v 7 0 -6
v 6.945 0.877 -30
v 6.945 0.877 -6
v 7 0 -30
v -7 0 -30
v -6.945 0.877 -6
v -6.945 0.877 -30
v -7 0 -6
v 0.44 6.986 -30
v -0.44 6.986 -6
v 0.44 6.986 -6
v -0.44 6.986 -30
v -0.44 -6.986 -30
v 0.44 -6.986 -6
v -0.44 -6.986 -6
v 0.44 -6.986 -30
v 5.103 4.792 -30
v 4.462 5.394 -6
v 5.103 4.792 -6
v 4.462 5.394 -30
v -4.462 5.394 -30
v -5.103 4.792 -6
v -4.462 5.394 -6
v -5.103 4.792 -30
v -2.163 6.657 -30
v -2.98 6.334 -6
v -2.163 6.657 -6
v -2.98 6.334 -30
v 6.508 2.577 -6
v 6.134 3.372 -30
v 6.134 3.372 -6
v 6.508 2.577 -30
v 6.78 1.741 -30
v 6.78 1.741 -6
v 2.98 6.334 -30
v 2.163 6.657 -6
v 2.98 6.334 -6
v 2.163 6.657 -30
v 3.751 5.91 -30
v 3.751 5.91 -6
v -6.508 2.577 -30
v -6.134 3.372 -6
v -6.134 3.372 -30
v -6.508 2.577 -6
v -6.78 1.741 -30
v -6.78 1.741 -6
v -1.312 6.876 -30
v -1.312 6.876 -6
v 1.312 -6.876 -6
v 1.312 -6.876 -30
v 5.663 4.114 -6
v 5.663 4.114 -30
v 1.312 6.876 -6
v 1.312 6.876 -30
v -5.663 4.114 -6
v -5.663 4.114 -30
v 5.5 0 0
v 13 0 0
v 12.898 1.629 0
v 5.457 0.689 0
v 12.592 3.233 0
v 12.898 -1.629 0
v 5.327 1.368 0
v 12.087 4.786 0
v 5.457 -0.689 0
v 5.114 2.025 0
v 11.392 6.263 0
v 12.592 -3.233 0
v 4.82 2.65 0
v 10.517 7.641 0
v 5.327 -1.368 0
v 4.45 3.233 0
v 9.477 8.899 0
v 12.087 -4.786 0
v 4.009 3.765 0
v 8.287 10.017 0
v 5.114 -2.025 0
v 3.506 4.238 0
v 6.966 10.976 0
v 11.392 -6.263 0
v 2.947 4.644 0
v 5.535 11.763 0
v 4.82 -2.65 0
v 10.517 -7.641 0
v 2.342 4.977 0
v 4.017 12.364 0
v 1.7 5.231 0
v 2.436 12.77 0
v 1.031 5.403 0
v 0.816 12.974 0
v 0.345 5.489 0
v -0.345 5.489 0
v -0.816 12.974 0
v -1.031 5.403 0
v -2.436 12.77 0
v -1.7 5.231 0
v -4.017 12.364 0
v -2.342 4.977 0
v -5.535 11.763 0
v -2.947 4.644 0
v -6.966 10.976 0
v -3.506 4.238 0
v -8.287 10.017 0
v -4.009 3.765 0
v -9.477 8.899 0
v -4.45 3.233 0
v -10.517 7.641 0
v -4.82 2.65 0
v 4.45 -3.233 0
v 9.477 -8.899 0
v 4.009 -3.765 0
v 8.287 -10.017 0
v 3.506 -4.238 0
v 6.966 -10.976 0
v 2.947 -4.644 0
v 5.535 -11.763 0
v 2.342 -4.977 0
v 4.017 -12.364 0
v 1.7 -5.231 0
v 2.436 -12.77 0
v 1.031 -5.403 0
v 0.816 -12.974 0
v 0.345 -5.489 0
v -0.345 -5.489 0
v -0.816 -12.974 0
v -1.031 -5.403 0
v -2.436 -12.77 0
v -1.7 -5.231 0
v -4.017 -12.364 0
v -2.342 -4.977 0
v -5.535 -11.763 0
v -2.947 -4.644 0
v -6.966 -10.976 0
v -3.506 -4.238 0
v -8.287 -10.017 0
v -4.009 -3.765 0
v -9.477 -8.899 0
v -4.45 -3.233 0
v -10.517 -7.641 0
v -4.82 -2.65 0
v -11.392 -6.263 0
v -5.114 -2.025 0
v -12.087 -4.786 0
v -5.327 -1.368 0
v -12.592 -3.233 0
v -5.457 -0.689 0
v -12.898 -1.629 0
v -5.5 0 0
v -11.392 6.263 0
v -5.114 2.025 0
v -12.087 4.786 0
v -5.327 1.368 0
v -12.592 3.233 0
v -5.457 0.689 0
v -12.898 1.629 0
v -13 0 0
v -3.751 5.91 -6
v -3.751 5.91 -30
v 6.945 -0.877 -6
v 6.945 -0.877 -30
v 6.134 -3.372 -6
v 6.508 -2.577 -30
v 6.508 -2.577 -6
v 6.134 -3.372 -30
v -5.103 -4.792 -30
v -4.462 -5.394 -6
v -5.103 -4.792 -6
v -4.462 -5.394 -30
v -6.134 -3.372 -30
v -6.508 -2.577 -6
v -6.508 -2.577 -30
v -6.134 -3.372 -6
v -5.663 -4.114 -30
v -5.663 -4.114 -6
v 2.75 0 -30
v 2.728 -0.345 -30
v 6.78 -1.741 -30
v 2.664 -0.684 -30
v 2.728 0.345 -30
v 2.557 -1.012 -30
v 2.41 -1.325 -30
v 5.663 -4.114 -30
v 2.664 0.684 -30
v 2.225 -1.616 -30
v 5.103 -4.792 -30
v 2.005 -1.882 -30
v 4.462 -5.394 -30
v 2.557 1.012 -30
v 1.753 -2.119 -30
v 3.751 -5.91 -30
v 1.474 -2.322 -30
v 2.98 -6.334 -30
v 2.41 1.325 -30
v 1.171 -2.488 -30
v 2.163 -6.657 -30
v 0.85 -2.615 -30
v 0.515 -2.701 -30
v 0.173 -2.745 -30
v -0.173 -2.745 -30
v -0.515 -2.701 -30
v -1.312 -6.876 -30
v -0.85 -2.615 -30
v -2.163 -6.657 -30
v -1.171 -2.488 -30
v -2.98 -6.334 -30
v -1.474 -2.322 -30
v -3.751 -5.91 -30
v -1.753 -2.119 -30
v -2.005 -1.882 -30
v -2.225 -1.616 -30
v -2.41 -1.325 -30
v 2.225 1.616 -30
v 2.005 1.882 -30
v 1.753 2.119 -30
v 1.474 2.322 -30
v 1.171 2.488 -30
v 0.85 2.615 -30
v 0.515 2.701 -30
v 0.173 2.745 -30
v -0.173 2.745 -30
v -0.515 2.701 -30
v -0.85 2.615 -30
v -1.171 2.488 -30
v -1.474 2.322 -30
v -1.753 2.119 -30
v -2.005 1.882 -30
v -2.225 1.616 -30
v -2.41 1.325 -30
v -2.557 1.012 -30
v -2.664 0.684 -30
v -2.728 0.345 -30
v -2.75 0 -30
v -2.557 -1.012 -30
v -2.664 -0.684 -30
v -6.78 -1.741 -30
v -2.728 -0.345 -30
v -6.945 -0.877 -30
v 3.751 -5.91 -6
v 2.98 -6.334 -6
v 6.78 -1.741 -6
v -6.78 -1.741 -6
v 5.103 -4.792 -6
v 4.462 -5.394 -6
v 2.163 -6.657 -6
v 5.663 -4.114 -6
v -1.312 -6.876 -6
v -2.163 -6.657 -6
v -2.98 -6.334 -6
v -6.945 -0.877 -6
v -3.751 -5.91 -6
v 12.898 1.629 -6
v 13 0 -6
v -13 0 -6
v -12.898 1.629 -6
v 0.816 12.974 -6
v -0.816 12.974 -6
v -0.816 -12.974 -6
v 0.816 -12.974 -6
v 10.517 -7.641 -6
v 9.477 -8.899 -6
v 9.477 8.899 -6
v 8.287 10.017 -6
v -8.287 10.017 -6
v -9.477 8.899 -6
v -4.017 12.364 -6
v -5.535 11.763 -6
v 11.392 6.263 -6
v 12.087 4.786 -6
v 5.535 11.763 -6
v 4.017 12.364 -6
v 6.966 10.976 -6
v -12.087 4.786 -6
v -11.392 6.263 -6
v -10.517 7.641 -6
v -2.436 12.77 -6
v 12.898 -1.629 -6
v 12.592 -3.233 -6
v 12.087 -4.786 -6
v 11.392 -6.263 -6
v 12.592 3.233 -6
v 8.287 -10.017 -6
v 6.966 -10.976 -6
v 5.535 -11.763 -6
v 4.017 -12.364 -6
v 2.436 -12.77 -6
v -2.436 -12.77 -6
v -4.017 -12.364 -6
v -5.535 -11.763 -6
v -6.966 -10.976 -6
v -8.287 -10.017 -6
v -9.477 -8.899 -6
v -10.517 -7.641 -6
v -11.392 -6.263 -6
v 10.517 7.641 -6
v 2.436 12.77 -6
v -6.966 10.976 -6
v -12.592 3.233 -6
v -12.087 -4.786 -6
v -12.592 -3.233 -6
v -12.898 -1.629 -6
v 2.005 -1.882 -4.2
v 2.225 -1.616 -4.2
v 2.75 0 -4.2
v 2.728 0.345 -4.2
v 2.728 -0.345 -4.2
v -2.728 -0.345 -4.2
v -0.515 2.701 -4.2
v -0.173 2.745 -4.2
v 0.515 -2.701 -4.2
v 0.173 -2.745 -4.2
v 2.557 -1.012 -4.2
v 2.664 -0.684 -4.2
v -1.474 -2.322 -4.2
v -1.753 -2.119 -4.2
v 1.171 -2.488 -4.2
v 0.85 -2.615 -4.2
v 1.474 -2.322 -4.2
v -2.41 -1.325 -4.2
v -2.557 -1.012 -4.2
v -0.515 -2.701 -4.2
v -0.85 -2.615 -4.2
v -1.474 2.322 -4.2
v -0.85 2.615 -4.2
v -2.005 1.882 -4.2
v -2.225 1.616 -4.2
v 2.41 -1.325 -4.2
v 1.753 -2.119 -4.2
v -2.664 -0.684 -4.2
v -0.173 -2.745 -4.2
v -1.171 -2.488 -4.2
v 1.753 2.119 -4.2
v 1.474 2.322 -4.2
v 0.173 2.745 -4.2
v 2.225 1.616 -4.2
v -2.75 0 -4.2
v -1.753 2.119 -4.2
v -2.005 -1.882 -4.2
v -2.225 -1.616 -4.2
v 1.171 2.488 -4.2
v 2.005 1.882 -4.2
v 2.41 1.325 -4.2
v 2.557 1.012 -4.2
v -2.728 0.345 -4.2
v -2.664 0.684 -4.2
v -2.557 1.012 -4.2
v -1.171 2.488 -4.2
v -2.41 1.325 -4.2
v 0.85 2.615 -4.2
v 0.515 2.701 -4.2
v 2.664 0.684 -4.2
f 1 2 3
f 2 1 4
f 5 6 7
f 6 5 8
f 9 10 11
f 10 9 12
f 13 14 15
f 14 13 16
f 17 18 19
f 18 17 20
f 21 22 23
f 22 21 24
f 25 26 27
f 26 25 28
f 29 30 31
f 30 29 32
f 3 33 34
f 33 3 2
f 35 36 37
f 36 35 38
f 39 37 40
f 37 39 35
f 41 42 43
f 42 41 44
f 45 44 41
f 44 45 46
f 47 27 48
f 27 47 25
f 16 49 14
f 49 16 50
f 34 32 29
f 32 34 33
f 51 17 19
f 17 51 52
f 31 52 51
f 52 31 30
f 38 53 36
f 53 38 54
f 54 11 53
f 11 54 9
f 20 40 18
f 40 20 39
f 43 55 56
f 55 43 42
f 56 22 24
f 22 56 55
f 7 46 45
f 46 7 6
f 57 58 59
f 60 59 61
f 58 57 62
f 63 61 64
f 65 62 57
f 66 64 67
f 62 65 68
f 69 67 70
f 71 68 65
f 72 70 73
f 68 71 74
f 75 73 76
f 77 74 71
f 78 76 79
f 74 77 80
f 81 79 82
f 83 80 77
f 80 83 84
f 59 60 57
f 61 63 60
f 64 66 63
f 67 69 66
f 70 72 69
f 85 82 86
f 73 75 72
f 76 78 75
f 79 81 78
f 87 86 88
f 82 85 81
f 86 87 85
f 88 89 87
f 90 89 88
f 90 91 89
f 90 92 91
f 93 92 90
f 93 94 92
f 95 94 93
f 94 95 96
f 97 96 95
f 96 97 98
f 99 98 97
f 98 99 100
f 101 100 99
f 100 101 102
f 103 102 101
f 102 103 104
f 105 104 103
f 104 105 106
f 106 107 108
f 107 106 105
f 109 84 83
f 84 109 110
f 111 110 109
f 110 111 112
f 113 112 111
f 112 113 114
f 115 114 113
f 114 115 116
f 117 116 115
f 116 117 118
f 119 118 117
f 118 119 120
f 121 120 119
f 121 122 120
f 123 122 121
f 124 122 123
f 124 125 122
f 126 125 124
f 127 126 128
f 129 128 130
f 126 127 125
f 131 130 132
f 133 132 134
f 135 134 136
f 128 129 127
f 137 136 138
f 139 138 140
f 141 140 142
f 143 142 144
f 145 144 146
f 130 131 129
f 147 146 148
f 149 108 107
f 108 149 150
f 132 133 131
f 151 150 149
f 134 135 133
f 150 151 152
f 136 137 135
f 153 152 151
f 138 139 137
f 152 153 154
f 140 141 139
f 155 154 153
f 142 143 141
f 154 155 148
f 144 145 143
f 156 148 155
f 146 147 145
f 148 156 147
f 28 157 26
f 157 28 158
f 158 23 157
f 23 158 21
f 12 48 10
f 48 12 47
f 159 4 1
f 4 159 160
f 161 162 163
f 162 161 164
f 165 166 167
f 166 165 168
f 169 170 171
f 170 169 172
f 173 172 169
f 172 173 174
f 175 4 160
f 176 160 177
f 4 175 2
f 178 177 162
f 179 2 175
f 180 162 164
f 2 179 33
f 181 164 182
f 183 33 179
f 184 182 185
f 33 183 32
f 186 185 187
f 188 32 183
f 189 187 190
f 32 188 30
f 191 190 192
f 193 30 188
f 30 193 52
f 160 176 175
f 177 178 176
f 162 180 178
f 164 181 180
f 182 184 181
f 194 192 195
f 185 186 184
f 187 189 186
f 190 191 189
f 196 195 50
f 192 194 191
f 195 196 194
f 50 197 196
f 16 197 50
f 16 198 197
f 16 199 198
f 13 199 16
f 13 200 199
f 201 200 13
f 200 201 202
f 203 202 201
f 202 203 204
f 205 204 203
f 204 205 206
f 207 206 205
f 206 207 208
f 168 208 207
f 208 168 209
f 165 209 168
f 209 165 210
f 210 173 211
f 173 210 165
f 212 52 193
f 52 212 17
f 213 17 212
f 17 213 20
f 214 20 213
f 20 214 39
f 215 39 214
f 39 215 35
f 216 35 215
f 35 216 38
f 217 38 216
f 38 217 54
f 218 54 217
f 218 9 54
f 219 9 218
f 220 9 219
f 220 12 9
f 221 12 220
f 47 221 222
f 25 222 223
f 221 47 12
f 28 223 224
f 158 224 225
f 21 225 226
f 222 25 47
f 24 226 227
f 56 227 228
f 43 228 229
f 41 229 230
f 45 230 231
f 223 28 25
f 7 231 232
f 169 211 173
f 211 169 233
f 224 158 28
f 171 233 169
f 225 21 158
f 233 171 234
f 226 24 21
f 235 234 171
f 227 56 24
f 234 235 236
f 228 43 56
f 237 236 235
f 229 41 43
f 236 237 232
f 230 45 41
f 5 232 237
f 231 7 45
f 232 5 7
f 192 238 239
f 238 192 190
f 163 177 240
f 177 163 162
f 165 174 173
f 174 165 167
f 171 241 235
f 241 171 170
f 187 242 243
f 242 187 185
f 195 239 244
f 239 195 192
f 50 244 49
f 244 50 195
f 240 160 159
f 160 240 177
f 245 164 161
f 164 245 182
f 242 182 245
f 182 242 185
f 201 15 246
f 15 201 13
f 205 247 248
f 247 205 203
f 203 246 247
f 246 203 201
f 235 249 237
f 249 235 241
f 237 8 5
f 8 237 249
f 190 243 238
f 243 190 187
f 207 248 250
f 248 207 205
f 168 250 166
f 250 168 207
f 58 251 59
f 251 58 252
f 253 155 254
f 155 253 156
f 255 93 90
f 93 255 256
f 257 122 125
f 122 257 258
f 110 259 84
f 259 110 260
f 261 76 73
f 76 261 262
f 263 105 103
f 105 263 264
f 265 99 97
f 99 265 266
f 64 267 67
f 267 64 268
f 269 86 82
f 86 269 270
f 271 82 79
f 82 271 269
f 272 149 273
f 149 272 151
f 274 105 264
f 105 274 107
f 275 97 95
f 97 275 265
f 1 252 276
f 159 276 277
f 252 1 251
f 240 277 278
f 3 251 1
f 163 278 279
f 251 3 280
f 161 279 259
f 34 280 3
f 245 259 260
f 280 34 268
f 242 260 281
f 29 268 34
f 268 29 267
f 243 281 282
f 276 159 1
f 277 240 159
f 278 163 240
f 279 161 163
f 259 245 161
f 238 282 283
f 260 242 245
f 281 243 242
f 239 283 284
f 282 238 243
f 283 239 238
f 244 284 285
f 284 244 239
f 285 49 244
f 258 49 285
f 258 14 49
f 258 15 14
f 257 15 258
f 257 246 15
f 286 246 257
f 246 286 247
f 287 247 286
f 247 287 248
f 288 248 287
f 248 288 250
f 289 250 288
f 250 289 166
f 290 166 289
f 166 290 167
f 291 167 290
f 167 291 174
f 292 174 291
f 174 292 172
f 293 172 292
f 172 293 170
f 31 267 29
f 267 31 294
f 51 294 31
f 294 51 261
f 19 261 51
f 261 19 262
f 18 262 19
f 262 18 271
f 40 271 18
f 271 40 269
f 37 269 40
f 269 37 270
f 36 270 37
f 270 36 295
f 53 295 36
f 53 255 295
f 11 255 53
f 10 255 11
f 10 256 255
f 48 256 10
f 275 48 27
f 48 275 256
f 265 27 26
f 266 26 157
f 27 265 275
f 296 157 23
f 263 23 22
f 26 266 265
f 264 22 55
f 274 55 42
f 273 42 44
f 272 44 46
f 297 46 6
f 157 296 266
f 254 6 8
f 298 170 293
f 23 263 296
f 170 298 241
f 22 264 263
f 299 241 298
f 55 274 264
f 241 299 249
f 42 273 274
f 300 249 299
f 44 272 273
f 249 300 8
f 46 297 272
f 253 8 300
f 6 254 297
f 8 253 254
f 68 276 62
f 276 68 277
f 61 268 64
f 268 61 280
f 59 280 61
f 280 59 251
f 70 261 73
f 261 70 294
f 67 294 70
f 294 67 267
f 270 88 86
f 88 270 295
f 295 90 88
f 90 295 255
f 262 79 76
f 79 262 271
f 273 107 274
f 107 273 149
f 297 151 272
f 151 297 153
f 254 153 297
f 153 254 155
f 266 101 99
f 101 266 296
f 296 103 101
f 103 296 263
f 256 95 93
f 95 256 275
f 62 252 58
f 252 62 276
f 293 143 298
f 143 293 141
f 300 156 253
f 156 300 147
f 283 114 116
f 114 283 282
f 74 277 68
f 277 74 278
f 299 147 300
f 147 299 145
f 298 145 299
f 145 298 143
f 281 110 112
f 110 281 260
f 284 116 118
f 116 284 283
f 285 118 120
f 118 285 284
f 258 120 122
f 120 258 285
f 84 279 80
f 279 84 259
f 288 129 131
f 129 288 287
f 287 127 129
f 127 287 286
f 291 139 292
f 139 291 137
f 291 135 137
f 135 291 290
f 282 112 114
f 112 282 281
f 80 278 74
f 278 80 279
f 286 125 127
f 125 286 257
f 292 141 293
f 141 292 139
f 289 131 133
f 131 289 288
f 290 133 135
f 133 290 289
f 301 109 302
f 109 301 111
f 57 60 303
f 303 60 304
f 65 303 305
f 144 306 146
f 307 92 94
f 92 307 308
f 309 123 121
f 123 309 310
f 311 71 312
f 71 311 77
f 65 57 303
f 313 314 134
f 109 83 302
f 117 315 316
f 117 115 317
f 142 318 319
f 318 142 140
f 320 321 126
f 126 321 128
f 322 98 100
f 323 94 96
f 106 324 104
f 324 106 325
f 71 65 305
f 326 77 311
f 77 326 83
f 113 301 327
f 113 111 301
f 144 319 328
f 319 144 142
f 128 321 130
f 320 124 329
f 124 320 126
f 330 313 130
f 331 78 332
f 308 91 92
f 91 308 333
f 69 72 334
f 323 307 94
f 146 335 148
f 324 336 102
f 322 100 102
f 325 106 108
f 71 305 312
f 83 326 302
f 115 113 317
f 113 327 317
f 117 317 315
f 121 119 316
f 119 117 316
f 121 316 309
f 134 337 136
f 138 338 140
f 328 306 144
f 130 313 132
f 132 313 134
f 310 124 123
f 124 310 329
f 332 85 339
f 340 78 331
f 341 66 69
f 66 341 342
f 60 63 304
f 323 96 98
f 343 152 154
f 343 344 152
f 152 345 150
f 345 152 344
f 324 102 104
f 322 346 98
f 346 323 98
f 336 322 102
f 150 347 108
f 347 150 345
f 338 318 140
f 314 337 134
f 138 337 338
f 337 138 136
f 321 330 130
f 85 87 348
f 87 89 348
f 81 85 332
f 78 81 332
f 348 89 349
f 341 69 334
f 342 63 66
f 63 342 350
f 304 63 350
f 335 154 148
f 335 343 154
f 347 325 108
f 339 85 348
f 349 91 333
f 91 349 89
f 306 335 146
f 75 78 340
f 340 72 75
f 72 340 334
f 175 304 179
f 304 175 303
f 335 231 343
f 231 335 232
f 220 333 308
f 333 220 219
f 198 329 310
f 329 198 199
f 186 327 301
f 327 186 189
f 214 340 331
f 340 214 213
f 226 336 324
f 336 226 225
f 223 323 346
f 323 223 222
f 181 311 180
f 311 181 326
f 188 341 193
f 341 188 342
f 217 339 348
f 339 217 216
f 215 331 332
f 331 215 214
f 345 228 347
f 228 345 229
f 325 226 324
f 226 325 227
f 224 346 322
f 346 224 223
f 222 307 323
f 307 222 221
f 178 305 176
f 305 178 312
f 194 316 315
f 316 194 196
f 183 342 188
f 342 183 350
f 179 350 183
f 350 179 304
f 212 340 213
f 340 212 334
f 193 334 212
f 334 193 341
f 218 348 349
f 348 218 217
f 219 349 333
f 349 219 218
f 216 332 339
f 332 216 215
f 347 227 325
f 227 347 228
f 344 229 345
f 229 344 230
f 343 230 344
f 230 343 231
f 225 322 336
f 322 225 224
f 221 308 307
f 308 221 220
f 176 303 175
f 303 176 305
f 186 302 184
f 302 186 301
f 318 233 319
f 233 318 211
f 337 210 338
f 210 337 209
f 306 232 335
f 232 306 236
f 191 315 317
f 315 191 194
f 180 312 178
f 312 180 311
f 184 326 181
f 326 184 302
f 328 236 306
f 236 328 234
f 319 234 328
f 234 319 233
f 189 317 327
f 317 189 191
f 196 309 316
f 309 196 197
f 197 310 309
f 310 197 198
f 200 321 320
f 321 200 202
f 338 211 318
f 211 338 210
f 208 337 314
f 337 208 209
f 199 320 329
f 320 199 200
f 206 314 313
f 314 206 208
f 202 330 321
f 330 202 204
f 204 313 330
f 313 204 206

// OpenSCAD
$fn = 50;


difference() {
	union() {
		translate(v = [0, 0, -30.0000000000]) {
			cylinder(h = 30, r = 7.0000000000);
		}
		translate(v = [0, 0, -6.0000000000]) {
			cylinder(h = 6, r = 13.0000000000);
		}
	}
	union() {
		translate(v = [0, 0, 0]) {
			rotate(a = [0, 0, 0]) {
				difference() {
					union() {
						#translate(v = [0, 0, -30.0000000000]) {
							cylinder(h = 30, r = 2.2500000000);
						}
						#translate(v = [0, 0, -4.2000000000]) {
							cylinder(h = 4.2000000000, r1 = 2.7500000000, r2 = 5.5000000000);
						}
						#translate(v = [0, 0, -30.0000000000]) {
							cylinder(h = 30, r = 2.7500000000);
						}
						#translate(v = [0, 0, -30.0000000000]) {
							cylinder(h = 30, r = 2.2500000000);
						}
					}
					union();
				}
			}
		}
	}
}
